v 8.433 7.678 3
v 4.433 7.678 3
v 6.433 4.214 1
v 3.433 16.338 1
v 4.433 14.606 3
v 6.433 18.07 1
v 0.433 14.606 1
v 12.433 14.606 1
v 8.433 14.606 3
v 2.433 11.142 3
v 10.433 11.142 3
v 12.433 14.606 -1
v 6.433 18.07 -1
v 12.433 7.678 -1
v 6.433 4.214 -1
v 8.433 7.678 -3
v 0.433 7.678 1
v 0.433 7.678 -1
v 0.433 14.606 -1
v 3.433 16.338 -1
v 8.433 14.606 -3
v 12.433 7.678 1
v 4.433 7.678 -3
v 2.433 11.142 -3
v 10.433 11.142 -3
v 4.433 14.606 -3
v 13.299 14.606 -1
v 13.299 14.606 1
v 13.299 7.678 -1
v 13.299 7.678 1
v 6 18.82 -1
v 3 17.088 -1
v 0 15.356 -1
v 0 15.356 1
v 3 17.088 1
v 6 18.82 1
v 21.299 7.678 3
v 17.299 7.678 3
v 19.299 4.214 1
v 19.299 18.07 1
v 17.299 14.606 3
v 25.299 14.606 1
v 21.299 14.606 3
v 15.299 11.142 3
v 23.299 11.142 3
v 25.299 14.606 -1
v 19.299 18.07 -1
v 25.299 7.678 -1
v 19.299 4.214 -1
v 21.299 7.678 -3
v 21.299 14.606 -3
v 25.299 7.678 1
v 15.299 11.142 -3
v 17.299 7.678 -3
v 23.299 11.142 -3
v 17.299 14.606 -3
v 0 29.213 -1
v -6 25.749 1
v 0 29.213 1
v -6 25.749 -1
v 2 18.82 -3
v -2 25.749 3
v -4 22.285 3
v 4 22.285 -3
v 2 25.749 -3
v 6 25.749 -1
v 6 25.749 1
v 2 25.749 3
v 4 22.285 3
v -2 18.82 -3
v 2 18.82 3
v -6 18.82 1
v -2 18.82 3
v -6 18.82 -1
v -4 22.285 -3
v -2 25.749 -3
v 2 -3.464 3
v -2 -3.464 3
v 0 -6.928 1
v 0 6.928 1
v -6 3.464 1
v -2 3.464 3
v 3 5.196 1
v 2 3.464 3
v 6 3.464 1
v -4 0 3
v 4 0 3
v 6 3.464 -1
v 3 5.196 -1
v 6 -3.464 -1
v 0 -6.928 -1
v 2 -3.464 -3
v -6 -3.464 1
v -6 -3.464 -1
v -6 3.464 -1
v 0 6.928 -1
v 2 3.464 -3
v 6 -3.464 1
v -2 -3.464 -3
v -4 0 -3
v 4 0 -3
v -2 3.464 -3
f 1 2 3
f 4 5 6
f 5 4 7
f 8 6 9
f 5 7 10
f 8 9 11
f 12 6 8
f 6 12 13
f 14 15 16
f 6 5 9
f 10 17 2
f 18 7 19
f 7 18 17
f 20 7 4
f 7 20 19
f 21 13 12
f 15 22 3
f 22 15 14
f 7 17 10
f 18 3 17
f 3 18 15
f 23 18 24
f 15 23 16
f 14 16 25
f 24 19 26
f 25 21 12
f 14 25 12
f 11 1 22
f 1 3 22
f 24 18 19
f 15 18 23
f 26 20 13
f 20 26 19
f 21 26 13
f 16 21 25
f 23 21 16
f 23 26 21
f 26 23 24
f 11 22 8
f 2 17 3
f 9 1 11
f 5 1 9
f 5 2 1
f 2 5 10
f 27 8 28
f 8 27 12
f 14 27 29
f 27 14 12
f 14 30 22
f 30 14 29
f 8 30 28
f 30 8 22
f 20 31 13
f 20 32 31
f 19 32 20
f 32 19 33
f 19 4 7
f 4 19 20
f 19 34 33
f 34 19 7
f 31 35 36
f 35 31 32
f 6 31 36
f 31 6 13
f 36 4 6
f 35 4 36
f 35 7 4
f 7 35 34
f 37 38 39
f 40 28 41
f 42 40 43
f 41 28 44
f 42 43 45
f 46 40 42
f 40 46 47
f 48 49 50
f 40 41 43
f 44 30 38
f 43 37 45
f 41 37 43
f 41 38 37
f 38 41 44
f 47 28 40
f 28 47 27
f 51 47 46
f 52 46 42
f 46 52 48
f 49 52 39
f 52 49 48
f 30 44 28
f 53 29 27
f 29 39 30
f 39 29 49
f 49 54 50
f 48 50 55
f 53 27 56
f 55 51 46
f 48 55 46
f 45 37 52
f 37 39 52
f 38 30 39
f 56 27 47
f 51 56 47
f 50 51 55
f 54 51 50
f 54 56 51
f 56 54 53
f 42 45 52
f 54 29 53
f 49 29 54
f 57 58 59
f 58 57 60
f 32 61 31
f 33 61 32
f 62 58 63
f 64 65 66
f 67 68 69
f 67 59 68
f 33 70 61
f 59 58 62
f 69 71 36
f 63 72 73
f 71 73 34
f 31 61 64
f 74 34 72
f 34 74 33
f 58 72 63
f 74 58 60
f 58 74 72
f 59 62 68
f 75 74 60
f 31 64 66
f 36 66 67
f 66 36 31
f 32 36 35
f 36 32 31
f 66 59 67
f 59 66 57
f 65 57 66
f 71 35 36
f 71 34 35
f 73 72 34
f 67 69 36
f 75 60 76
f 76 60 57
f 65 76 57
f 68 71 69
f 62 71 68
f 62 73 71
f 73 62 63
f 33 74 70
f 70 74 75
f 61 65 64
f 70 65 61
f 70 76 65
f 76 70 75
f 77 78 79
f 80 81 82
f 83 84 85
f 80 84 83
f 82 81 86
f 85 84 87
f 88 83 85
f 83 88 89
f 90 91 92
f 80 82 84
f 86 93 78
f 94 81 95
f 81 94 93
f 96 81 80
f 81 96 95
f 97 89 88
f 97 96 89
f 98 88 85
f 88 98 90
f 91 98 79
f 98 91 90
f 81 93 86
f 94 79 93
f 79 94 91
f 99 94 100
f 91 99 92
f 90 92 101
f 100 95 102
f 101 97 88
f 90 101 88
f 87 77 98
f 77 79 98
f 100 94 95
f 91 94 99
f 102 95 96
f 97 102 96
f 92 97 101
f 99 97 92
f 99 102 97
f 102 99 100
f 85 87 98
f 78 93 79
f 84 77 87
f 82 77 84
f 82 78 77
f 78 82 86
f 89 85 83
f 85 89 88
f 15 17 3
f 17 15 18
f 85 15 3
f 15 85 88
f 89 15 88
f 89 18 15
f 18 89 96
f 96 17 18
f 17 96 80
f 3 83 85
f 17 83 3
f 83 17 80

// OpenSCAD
// file: gem-common.scad
angles = [for(i = [0:5]) i * (360 / 6)];

inner_poly_radius=8 * cos(60);
outer_poly_radius=8 * cos(30);
outer_poly_z=1;
inner_poly_z=3;


gap_between_gems = cos(30);
distance_to_corner = cos(30) * outer_poly_radius * 2 + gap_between_gems;


module edge_connector(angle = 0) {
    function make_point_2d(r, angle, height) = [r * sin(angle), height];
    
    points = [
        make_point_2d(outer_poly_radius, 30, outer_poly_z),
        make_point_2d(outer_poly_radius, -30, outer_poly_z),
        make_point_2d(outer_poly_radius, -30, -outer_poly_z),
        make_point_2d(outer_poly_radius, 30, -outer_poly_z),
    ];
    
    rotate([0,0,angle]) {
        translate([(distance_to_corner - gap_between_gems) / 2,0,0]){
            rotate([90, 0, 90]) {
                linear_extrude(gap_between_gems) {
                    polygon(points);
                }
            }
        }
    }
}

module move(distance, angle) {
    translate([distance * cos(angle), distance * sin(angle), 0]) {
        children();
    }
}


module corner_connector(angle=0) {
    r = 0.5;
    rotate_angle = angle + 30;
    move(outer_poly_radius + r, rotate_angle) {
        translate([0,0, -outer_poly_z]) {
            rotate([0,0,-rotate_angle]) {
                cylinder($fn=3, r=r, h=outer_poly_z * 2);
            }
        }
    }
}

module gem() {
    function make_point(r, angle, height) = [r * cos(angle), r * sin(angle), height];
    
    top_poly = [for(th = angles) make_point(inner_poly_radius, th, inner_poly_z)];
    top_outer_poly = [for(th = angles) make_point(outer_poly_radius, th + 30, outer_poly_z)];
    bottom_outer_poly = [for(th = angles) make_point(outer_poly_radius, th + 30, -outer_poly_z)];
    bottom_poly = [for(th = angles) make_point(inner_poly_radius, th, -inner_poly_z)];
 
    function rot(n, base) = (n + 1 - base) % 6 + base;
    
    faces = [
        [5, 4, 3, 2, 1, 0],
        for(i = [0:5]) [i, (i + 1) % 6, i + 6],
        for(i = [6:11]) [i, (i - 5) % 6, rot(i, 6)],
        for(i = [6:11]) [i, rot(i, 6), rot(i, 6) + 6, i + 6],
        for(i = [12:17]) [i, rot(i, 12), rot(i, 12) + 6],
        for(i = [18:23]) [i, i-6, rot(i, 18)],
        [18, 19, 20, 21, 22, 23],
    ];
    
    polyhedron(
        concat(
            top_poly,
            top_outer_poly,
            bottom_outer_poly,
            bottom_poly
        ),
        faces
    );
}
// main file
include <./gem-common.scad>

gem();
edge_connector(60);
move(distance_to_corner, 60) {
    gem();
    edge_connector(0);
    edge_connector(120);
    move(distance_to_corner, 0) {
        gem();
    }
    move(distance_to_corner, 120) {
        gem();
    }
}
